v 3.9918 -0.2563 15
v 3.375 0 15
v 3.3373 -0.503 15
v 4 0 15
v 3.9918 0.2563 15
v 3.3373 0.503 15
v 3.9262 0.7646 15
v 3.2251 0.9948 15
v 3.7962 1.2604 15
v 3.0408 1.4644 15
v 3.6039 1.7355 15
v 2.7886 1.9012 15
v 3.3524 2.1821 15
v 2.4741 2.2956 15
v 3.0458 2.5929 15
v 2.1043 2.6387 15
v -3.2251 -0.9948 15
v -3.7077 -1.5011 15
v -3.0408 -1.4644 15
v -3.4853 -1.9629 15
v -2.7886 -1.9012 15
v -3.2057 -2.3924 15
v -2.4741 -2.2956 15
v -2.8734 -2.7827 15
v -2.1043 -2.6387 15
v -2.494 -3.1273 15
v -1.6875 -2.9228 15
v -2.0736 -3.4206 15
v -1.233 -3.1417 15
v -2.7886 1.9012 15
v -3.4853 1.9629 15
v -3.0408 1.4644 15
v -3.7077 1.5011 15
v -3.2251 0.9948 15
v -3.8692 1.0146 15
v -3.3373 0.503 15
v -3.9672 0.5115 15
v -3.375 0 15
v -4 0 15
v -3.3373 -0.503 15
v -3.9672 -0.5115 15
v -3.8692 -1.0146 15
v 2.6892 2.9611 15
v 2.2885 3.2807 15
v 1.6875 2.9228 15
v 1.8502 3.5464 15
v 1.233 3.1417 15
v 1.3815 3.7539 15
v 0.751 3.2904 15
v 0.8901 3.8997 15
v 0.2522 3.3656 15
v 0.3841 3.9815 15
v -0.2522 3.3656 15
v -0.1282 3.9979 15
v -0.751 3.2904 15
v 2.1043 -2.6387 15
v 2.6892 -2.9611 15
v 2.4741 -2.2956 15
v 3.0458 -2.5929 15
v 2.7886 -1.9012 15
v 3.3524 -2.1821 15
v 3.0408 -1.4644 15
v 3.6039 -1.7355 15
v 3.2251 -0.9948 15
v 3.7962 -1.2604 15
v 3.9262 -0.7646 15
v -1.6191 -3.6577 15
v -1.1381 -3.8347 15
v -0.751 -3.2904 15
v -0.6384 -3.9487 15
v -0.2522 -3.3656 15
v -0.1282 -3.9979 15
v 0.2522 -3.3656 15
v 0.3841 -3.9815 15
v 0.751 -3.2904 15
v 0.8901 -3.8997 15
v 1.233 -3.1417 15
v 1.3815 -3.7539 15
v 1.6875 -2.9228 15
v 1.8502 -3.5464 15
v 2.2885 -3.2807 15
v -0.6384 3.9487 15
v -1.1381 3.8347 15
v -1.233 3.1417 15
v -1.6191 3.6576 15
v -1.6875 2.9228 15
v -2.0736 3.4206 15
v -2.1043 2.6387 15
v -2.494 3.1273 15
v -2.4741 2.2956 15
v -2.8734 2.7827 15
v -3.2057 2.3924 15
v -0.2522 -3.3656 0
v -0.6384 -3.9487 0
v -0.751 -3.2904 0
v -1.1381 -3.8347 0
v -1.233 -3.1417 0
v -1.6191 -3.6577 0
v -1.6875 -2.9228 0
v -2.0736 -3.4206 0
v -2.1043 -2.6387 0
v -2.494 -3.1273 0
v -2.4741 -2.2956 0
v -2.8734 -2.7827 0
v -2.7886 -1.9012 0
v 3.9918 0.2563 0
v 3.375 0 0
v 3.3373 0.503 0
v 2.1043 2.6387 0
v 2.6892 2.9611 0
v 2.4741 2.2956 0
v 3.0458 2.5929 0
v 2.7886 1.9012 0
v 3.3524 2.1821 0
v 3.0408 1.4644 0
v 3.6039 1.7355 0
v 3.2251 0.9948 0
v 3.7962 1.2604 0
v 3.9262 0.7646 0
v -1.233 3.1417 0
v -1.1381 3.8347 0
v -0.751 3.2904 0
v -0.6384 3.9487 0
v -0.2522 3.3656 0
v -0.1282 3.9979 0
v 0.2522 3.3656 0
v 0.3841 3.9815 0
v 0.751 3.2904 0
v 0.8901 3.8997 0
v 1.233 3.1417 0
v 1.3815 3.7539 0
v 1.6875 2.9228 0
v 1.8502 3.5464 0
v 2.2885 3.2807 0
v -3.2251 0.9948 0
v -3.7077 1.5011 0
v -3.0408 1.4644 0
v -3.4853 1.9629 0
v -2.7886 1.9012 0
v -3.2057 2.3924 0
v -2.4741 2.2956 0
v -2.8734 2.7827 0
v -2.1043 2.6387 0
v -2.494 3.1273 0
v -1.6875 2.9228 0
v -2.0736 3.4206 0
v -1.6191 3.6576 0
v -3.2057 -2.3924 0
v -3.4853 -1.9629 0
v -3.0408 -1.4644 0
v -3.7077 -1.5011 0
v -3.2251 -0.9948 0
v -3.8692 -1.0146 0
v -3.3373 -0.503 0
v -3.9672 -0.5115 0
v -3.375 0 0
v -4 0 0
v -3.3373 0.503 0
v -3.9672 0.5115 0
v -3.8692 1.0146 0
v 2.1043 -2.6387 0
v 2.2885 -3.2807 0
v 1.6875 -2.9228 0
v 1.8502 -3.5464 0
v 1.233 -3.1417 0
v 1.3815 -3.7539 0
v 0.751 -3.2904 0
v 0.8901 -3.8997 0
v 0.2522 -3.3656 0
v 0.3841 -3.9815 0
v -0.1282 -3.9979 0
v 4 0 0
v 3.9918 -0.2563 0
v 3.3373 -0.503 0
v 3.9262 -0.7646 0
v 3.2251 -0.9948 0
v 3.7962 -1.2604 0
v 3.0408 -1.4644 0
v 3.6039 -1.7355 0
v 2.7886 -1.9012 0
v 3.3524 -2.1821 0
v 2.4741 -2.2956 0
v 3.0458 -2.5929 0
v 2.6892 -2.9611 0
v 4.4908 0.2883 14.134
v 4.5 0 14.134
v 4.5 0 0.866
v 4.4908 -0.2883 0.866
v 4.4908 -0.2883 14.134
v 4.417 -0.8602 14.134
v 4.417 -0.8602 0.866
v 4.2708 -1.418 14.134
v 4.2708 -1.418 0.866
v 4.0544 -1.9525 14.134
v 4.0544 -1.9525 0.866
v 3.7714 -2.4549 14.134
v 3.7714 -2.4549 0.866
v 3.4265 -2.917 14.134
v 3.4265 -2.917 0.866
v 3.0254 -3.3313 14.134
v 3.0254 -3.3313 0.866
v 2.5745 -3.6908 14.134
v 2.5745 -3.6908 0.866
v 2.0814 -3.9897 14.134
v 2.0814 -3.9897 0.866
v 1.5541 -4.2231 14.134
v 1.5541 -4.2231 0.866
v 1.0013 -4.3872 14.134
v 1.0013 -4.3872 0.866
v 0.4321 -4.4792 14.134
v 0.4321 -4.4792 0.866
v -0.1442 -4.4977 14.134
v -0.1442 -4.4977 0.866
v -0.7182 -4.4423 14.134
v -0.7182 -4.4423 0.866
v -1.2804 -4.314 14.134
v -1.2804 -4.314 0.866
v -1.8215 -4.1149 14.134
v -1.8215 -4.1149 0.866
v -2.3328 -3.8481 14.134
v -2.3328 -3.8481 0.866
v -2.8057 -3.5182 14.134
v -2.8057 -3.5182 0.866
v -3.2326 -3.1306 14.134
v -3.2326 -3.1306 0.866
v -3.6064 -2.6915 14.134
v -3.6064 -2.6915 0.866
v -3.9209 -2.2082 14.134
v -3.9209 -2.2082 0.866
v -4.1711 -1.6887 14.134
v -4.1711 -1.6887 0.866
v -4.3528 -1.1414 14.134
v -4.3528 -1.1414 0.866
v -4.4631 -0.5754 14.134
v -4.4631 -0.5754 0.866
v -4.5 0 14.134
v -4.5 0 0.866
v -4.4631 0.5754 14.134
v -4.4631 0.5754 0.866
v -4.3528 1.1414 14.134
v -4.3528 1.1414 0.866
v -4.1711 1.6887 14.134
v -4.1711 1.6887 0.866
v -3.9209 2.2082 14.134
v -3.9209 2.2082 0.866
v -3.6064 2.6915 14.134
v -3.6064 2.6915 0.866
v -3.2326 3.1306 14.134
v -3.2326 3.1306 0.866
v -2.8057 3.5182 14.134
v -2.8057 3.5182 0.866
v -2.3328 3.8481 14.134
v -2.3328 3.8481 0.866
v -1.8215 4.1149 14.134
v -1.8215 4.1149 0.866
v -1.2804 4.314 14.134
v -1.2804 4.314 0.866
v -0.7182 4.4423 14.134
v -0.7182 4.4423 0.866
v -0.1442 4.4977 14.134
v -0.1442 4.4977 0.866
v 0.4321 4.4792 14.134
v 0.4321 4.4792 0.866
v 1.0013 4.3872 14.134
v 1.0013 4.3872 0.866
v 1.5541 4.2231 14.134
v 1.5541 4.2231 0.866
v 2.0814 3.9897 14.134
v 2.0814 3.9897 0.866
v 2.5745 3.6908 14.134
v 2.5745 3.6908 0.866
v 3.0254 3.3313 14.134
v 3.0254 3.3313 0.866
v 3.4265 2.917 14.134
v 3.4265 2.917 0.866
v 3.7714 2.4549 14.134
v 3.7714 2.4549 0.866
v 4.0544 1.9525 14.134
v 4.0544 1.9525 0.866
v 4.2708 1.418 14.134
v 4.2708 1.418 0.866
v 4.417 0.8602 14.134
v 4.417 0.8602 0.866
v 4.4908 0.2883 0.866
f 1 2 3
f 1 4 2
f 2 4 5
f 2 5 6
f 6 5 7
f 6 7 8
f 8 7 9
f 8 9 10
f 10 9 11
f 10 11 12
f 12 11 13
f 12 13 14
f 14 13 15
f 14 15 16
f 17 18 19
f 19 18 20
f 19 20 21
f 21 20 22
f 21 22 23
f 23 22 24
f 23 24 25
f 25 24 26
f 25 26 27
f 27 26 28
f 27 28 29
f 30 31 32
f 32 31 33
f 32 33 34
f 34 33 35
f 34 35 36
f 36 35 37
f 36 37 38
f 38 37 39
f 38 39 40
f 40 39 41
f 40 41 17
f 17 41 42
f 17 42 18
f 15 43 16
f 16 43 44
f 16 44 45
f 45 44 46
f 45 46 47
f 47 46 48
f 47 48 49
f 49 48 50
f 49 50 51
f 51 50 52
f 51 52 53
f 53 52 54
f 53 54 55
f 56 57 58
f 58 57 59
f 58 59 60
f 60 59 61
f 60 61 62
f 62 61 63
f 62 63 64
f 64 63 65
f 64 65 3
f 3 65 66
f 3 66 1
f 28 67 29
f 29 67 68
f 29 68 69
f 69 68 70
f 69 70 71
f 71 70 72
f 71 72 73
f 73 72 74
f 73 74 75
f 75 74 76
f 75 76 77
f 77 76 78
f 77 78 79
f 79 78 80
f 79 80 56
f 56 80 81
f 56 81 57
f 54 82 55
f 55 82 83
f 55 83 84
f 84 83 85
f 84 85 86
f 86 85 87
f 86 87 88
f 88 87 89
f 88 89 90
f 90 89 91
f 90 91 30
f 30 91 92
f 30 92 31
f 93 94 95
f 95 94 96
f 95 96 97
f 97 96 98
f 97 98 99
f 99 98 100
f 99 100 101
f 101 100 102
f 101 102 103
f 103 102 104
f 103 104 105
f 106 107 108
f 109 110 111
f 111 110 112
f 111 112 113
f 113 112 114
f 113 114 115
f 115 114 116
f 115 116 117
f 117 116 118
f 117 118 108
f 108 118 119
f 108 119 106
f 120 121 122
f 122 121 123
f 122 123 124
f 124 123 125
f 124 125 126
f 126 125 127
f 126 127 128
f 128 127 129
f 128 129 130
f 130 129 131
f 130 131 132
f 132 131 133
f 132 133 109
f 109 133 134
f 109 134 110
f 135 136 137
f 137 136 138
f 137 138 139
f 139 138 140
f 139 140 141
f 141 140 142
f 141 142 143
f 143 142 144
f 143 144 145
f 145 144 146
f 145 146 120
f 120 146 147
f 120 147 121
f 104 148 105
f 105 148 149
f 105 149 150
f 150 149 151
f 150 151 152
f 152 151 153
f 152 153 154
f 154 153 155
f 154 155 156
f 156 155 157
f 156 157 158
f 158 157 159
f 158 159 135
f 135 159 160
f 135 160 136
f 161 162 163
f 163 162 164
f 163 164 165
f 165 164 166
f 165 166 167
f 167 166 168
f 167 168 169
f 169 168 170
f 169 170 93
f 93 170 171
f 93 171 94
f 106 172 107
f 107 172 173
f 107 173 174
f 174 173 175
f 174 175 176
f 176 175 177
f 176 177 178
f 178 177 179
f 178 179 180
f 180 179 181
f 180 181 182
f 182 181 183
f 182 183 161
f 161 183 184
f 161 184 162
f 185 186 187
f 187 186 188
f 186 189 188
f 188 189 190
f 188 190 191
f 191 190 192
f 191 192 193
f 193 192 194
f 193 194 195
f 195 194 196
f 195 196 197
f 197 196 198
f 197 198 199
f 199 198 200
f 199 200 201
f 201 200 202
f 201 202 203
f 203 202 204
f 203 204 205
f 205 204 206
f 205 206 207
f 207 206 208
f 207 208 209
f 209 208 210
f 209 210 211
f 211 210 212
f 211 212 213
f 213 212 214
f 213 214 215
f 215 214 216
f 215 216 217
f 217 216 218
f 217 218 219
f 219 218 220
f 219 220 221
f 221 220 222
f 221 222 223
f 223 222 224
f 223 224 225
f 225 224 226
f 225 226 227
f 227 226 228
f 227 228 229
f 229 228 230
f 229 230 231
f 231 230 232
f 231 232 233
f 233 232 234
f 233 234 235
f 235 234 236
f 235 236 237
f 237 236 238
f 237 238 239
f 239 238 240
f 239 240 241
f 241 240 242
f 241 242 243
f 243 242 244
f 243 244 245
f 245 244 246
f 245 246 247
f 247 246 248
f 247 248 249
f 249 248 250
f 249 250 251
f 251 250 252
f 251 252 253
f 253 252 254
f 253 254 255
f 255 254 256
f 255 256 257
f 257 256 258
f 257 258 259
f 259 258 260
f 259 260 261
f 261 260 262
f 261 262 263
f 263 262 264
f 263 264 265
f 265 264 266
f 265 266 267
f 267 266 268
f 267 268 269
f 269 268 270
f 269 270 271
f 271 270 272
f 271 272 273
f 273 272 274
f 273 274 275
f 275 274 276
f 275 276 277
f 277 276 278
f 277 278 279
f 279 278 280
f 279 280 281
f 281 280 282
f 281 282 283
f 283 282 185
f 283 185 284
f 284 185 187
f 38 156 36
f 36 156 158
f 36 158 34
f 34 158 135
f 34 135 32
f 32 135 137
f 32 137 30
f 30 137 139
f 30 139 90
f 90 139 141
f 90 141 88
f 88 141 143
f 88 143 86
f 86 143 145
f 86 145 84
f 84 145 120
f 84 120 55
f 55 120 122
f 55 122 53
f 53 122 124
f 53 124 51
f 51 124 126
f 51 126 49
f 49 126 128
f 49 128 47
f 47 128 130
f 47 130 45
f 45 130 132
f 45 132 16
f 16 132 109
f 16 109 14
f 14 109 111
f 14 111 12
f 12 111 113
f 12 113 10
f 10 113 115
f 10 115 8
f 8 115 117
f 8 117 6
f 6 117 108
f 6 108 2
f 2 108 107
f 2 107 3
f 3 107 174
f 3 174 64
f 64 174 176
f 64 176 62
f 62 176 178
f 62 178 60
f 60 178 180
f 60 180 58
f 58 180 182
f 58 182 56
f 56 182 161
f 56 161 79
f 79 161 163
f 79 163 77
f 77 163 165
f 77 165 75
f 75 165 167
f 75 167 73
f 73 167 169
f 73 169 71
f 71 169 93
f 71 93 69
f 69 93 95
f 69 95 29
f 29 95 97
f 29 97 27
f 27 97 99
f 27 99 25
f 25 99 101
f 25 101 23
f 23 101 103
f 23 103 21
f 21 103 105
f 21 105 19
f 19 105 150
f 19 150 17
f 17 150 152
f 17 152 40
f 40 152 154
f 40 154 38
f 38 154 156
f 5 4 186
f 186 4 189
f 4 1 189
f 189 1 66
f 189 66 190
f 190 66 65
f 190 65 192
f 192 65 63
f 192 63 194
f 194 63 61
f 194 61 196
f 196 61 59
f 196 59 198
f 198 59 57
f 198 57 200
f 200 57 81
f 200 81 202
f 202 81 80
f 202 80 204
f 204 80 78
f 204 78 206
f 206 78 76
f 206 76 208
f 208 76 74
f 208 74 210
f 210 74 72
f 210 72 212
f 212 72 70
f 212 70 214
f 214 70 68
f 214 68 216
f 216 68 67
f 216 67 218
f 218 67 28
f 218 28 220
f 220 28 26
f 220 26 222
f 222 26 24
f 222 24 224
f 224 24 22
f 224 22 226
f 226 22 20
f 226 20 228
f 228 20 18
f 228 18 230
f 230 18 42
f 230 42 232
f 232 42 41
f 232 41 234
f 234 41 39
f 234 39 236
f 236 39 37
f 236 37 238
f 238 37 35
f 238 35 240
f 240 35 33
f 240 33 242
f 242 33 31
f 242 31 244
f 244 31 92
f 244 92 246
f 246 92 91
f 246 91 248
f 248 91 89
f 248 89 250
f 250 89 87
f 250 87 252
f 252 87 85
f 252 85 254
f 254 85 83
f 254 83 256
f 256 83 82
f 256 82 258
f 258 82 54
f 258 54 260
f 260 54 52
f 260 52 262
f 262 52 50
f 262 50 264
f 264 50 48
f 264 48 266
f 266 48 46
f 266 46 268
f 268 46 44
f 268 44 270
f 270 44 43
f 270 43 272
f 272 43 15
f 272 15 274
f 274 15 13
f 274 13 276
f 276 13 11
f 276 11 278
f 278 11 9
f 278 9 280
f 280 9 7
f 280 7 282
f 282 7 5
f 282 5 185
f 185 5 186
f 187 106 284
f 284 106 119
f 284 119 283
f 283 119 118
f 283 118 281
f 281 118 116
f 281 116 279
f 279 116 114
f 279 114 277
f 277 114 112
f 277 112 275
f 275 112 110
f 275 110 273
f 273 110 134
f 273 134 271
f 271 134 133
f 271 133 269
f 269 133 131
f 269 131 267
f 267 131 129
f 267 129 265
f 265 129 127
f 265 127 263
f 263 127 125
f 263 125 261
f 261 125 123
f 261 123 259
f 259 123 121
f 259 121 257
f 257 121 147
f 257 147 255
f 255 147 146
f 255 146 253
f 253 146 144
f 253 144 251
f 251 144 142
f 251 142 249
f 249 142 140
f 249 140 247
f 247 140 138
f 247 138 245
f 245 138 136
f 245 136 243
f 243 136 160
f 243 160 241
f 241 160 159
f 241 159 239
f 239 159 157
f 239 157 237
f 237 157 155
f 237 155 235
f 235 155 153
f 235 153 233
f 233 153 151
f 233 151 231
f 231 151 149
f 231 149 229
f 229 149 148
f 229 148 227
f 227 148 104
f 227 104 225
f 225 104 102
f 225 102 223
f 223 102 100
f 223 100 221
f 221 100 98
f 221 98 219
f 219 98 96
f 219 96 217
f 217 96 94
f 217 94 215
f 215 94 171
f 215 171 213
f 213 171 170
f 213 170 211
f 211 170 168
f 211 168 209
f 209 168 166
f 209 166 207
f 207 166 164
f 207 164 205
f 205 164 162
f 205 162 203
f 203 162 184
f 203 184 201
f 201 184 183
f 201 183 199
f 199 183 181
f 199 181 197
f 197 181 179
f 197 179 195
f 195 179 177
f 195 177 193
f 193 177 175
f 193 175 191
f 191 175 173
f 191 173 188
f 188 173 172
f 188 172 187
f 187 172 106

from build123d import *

# Parameters (mm, degrees)
SKETCH1_R             = 4.5
SKETCH1_R_2           = 3.375
BOSS_EXTRUDE1_DEPTH   = 15
CHAMFER1_SIZE         = 0.5
CHAMFER1_SIZE2        = 0.866025404
CHAMFER1_PART_2_SIZE  = 0.5
CHAMFER1_PART_2_SIZE2 = 0.866025404


with BuildPart() as part:
    # Sketch1 → Boss-Extrude1 (new body)
    with BuildSketch(Plane.XY):
        Circle(SKETCH1_R)
        Circle(SKETCH1_R_2, mode=Mode.SUBTRACT)
    extrude(amount=BOSS_EXTRUDE1_DEPTH)

    # Chamfer1
    chamfer1_edges = [part.edges().sort_by_distance(p)[0] for p in [
        (-4.5, 0, 0),
    ]]
    chamfer1_side = [part.faces().sort_by_distance(p)[0] for p in [
        (-4.372720779, 0, 0),
    ]]
    chamfer(chamfer1_edges, length=CHAMFER1_SIZE, length2=CHAMFER1_SIZE2, reference=chamfer1_side[0])

    # Chamfer1 part 2
    chamfer1_part_2_edges = [part.edges().sort_by_distance(p)[0] for p in [
        (-4.5, 0, 15),
    ]]
    chamfer1_part_2_side = [part.faces().sort_by_distance(p)[0] for p in [
        (-4.372720779, 0, 15),
    ]]
    chamfer(chamfer1_part_2_edges, length=CHAMFER1_PART_2_SIZE, length2=CHAMFER1_PART_2_SIZE2, reference=chamfer1_part_2_side[0])


solid = part.part
